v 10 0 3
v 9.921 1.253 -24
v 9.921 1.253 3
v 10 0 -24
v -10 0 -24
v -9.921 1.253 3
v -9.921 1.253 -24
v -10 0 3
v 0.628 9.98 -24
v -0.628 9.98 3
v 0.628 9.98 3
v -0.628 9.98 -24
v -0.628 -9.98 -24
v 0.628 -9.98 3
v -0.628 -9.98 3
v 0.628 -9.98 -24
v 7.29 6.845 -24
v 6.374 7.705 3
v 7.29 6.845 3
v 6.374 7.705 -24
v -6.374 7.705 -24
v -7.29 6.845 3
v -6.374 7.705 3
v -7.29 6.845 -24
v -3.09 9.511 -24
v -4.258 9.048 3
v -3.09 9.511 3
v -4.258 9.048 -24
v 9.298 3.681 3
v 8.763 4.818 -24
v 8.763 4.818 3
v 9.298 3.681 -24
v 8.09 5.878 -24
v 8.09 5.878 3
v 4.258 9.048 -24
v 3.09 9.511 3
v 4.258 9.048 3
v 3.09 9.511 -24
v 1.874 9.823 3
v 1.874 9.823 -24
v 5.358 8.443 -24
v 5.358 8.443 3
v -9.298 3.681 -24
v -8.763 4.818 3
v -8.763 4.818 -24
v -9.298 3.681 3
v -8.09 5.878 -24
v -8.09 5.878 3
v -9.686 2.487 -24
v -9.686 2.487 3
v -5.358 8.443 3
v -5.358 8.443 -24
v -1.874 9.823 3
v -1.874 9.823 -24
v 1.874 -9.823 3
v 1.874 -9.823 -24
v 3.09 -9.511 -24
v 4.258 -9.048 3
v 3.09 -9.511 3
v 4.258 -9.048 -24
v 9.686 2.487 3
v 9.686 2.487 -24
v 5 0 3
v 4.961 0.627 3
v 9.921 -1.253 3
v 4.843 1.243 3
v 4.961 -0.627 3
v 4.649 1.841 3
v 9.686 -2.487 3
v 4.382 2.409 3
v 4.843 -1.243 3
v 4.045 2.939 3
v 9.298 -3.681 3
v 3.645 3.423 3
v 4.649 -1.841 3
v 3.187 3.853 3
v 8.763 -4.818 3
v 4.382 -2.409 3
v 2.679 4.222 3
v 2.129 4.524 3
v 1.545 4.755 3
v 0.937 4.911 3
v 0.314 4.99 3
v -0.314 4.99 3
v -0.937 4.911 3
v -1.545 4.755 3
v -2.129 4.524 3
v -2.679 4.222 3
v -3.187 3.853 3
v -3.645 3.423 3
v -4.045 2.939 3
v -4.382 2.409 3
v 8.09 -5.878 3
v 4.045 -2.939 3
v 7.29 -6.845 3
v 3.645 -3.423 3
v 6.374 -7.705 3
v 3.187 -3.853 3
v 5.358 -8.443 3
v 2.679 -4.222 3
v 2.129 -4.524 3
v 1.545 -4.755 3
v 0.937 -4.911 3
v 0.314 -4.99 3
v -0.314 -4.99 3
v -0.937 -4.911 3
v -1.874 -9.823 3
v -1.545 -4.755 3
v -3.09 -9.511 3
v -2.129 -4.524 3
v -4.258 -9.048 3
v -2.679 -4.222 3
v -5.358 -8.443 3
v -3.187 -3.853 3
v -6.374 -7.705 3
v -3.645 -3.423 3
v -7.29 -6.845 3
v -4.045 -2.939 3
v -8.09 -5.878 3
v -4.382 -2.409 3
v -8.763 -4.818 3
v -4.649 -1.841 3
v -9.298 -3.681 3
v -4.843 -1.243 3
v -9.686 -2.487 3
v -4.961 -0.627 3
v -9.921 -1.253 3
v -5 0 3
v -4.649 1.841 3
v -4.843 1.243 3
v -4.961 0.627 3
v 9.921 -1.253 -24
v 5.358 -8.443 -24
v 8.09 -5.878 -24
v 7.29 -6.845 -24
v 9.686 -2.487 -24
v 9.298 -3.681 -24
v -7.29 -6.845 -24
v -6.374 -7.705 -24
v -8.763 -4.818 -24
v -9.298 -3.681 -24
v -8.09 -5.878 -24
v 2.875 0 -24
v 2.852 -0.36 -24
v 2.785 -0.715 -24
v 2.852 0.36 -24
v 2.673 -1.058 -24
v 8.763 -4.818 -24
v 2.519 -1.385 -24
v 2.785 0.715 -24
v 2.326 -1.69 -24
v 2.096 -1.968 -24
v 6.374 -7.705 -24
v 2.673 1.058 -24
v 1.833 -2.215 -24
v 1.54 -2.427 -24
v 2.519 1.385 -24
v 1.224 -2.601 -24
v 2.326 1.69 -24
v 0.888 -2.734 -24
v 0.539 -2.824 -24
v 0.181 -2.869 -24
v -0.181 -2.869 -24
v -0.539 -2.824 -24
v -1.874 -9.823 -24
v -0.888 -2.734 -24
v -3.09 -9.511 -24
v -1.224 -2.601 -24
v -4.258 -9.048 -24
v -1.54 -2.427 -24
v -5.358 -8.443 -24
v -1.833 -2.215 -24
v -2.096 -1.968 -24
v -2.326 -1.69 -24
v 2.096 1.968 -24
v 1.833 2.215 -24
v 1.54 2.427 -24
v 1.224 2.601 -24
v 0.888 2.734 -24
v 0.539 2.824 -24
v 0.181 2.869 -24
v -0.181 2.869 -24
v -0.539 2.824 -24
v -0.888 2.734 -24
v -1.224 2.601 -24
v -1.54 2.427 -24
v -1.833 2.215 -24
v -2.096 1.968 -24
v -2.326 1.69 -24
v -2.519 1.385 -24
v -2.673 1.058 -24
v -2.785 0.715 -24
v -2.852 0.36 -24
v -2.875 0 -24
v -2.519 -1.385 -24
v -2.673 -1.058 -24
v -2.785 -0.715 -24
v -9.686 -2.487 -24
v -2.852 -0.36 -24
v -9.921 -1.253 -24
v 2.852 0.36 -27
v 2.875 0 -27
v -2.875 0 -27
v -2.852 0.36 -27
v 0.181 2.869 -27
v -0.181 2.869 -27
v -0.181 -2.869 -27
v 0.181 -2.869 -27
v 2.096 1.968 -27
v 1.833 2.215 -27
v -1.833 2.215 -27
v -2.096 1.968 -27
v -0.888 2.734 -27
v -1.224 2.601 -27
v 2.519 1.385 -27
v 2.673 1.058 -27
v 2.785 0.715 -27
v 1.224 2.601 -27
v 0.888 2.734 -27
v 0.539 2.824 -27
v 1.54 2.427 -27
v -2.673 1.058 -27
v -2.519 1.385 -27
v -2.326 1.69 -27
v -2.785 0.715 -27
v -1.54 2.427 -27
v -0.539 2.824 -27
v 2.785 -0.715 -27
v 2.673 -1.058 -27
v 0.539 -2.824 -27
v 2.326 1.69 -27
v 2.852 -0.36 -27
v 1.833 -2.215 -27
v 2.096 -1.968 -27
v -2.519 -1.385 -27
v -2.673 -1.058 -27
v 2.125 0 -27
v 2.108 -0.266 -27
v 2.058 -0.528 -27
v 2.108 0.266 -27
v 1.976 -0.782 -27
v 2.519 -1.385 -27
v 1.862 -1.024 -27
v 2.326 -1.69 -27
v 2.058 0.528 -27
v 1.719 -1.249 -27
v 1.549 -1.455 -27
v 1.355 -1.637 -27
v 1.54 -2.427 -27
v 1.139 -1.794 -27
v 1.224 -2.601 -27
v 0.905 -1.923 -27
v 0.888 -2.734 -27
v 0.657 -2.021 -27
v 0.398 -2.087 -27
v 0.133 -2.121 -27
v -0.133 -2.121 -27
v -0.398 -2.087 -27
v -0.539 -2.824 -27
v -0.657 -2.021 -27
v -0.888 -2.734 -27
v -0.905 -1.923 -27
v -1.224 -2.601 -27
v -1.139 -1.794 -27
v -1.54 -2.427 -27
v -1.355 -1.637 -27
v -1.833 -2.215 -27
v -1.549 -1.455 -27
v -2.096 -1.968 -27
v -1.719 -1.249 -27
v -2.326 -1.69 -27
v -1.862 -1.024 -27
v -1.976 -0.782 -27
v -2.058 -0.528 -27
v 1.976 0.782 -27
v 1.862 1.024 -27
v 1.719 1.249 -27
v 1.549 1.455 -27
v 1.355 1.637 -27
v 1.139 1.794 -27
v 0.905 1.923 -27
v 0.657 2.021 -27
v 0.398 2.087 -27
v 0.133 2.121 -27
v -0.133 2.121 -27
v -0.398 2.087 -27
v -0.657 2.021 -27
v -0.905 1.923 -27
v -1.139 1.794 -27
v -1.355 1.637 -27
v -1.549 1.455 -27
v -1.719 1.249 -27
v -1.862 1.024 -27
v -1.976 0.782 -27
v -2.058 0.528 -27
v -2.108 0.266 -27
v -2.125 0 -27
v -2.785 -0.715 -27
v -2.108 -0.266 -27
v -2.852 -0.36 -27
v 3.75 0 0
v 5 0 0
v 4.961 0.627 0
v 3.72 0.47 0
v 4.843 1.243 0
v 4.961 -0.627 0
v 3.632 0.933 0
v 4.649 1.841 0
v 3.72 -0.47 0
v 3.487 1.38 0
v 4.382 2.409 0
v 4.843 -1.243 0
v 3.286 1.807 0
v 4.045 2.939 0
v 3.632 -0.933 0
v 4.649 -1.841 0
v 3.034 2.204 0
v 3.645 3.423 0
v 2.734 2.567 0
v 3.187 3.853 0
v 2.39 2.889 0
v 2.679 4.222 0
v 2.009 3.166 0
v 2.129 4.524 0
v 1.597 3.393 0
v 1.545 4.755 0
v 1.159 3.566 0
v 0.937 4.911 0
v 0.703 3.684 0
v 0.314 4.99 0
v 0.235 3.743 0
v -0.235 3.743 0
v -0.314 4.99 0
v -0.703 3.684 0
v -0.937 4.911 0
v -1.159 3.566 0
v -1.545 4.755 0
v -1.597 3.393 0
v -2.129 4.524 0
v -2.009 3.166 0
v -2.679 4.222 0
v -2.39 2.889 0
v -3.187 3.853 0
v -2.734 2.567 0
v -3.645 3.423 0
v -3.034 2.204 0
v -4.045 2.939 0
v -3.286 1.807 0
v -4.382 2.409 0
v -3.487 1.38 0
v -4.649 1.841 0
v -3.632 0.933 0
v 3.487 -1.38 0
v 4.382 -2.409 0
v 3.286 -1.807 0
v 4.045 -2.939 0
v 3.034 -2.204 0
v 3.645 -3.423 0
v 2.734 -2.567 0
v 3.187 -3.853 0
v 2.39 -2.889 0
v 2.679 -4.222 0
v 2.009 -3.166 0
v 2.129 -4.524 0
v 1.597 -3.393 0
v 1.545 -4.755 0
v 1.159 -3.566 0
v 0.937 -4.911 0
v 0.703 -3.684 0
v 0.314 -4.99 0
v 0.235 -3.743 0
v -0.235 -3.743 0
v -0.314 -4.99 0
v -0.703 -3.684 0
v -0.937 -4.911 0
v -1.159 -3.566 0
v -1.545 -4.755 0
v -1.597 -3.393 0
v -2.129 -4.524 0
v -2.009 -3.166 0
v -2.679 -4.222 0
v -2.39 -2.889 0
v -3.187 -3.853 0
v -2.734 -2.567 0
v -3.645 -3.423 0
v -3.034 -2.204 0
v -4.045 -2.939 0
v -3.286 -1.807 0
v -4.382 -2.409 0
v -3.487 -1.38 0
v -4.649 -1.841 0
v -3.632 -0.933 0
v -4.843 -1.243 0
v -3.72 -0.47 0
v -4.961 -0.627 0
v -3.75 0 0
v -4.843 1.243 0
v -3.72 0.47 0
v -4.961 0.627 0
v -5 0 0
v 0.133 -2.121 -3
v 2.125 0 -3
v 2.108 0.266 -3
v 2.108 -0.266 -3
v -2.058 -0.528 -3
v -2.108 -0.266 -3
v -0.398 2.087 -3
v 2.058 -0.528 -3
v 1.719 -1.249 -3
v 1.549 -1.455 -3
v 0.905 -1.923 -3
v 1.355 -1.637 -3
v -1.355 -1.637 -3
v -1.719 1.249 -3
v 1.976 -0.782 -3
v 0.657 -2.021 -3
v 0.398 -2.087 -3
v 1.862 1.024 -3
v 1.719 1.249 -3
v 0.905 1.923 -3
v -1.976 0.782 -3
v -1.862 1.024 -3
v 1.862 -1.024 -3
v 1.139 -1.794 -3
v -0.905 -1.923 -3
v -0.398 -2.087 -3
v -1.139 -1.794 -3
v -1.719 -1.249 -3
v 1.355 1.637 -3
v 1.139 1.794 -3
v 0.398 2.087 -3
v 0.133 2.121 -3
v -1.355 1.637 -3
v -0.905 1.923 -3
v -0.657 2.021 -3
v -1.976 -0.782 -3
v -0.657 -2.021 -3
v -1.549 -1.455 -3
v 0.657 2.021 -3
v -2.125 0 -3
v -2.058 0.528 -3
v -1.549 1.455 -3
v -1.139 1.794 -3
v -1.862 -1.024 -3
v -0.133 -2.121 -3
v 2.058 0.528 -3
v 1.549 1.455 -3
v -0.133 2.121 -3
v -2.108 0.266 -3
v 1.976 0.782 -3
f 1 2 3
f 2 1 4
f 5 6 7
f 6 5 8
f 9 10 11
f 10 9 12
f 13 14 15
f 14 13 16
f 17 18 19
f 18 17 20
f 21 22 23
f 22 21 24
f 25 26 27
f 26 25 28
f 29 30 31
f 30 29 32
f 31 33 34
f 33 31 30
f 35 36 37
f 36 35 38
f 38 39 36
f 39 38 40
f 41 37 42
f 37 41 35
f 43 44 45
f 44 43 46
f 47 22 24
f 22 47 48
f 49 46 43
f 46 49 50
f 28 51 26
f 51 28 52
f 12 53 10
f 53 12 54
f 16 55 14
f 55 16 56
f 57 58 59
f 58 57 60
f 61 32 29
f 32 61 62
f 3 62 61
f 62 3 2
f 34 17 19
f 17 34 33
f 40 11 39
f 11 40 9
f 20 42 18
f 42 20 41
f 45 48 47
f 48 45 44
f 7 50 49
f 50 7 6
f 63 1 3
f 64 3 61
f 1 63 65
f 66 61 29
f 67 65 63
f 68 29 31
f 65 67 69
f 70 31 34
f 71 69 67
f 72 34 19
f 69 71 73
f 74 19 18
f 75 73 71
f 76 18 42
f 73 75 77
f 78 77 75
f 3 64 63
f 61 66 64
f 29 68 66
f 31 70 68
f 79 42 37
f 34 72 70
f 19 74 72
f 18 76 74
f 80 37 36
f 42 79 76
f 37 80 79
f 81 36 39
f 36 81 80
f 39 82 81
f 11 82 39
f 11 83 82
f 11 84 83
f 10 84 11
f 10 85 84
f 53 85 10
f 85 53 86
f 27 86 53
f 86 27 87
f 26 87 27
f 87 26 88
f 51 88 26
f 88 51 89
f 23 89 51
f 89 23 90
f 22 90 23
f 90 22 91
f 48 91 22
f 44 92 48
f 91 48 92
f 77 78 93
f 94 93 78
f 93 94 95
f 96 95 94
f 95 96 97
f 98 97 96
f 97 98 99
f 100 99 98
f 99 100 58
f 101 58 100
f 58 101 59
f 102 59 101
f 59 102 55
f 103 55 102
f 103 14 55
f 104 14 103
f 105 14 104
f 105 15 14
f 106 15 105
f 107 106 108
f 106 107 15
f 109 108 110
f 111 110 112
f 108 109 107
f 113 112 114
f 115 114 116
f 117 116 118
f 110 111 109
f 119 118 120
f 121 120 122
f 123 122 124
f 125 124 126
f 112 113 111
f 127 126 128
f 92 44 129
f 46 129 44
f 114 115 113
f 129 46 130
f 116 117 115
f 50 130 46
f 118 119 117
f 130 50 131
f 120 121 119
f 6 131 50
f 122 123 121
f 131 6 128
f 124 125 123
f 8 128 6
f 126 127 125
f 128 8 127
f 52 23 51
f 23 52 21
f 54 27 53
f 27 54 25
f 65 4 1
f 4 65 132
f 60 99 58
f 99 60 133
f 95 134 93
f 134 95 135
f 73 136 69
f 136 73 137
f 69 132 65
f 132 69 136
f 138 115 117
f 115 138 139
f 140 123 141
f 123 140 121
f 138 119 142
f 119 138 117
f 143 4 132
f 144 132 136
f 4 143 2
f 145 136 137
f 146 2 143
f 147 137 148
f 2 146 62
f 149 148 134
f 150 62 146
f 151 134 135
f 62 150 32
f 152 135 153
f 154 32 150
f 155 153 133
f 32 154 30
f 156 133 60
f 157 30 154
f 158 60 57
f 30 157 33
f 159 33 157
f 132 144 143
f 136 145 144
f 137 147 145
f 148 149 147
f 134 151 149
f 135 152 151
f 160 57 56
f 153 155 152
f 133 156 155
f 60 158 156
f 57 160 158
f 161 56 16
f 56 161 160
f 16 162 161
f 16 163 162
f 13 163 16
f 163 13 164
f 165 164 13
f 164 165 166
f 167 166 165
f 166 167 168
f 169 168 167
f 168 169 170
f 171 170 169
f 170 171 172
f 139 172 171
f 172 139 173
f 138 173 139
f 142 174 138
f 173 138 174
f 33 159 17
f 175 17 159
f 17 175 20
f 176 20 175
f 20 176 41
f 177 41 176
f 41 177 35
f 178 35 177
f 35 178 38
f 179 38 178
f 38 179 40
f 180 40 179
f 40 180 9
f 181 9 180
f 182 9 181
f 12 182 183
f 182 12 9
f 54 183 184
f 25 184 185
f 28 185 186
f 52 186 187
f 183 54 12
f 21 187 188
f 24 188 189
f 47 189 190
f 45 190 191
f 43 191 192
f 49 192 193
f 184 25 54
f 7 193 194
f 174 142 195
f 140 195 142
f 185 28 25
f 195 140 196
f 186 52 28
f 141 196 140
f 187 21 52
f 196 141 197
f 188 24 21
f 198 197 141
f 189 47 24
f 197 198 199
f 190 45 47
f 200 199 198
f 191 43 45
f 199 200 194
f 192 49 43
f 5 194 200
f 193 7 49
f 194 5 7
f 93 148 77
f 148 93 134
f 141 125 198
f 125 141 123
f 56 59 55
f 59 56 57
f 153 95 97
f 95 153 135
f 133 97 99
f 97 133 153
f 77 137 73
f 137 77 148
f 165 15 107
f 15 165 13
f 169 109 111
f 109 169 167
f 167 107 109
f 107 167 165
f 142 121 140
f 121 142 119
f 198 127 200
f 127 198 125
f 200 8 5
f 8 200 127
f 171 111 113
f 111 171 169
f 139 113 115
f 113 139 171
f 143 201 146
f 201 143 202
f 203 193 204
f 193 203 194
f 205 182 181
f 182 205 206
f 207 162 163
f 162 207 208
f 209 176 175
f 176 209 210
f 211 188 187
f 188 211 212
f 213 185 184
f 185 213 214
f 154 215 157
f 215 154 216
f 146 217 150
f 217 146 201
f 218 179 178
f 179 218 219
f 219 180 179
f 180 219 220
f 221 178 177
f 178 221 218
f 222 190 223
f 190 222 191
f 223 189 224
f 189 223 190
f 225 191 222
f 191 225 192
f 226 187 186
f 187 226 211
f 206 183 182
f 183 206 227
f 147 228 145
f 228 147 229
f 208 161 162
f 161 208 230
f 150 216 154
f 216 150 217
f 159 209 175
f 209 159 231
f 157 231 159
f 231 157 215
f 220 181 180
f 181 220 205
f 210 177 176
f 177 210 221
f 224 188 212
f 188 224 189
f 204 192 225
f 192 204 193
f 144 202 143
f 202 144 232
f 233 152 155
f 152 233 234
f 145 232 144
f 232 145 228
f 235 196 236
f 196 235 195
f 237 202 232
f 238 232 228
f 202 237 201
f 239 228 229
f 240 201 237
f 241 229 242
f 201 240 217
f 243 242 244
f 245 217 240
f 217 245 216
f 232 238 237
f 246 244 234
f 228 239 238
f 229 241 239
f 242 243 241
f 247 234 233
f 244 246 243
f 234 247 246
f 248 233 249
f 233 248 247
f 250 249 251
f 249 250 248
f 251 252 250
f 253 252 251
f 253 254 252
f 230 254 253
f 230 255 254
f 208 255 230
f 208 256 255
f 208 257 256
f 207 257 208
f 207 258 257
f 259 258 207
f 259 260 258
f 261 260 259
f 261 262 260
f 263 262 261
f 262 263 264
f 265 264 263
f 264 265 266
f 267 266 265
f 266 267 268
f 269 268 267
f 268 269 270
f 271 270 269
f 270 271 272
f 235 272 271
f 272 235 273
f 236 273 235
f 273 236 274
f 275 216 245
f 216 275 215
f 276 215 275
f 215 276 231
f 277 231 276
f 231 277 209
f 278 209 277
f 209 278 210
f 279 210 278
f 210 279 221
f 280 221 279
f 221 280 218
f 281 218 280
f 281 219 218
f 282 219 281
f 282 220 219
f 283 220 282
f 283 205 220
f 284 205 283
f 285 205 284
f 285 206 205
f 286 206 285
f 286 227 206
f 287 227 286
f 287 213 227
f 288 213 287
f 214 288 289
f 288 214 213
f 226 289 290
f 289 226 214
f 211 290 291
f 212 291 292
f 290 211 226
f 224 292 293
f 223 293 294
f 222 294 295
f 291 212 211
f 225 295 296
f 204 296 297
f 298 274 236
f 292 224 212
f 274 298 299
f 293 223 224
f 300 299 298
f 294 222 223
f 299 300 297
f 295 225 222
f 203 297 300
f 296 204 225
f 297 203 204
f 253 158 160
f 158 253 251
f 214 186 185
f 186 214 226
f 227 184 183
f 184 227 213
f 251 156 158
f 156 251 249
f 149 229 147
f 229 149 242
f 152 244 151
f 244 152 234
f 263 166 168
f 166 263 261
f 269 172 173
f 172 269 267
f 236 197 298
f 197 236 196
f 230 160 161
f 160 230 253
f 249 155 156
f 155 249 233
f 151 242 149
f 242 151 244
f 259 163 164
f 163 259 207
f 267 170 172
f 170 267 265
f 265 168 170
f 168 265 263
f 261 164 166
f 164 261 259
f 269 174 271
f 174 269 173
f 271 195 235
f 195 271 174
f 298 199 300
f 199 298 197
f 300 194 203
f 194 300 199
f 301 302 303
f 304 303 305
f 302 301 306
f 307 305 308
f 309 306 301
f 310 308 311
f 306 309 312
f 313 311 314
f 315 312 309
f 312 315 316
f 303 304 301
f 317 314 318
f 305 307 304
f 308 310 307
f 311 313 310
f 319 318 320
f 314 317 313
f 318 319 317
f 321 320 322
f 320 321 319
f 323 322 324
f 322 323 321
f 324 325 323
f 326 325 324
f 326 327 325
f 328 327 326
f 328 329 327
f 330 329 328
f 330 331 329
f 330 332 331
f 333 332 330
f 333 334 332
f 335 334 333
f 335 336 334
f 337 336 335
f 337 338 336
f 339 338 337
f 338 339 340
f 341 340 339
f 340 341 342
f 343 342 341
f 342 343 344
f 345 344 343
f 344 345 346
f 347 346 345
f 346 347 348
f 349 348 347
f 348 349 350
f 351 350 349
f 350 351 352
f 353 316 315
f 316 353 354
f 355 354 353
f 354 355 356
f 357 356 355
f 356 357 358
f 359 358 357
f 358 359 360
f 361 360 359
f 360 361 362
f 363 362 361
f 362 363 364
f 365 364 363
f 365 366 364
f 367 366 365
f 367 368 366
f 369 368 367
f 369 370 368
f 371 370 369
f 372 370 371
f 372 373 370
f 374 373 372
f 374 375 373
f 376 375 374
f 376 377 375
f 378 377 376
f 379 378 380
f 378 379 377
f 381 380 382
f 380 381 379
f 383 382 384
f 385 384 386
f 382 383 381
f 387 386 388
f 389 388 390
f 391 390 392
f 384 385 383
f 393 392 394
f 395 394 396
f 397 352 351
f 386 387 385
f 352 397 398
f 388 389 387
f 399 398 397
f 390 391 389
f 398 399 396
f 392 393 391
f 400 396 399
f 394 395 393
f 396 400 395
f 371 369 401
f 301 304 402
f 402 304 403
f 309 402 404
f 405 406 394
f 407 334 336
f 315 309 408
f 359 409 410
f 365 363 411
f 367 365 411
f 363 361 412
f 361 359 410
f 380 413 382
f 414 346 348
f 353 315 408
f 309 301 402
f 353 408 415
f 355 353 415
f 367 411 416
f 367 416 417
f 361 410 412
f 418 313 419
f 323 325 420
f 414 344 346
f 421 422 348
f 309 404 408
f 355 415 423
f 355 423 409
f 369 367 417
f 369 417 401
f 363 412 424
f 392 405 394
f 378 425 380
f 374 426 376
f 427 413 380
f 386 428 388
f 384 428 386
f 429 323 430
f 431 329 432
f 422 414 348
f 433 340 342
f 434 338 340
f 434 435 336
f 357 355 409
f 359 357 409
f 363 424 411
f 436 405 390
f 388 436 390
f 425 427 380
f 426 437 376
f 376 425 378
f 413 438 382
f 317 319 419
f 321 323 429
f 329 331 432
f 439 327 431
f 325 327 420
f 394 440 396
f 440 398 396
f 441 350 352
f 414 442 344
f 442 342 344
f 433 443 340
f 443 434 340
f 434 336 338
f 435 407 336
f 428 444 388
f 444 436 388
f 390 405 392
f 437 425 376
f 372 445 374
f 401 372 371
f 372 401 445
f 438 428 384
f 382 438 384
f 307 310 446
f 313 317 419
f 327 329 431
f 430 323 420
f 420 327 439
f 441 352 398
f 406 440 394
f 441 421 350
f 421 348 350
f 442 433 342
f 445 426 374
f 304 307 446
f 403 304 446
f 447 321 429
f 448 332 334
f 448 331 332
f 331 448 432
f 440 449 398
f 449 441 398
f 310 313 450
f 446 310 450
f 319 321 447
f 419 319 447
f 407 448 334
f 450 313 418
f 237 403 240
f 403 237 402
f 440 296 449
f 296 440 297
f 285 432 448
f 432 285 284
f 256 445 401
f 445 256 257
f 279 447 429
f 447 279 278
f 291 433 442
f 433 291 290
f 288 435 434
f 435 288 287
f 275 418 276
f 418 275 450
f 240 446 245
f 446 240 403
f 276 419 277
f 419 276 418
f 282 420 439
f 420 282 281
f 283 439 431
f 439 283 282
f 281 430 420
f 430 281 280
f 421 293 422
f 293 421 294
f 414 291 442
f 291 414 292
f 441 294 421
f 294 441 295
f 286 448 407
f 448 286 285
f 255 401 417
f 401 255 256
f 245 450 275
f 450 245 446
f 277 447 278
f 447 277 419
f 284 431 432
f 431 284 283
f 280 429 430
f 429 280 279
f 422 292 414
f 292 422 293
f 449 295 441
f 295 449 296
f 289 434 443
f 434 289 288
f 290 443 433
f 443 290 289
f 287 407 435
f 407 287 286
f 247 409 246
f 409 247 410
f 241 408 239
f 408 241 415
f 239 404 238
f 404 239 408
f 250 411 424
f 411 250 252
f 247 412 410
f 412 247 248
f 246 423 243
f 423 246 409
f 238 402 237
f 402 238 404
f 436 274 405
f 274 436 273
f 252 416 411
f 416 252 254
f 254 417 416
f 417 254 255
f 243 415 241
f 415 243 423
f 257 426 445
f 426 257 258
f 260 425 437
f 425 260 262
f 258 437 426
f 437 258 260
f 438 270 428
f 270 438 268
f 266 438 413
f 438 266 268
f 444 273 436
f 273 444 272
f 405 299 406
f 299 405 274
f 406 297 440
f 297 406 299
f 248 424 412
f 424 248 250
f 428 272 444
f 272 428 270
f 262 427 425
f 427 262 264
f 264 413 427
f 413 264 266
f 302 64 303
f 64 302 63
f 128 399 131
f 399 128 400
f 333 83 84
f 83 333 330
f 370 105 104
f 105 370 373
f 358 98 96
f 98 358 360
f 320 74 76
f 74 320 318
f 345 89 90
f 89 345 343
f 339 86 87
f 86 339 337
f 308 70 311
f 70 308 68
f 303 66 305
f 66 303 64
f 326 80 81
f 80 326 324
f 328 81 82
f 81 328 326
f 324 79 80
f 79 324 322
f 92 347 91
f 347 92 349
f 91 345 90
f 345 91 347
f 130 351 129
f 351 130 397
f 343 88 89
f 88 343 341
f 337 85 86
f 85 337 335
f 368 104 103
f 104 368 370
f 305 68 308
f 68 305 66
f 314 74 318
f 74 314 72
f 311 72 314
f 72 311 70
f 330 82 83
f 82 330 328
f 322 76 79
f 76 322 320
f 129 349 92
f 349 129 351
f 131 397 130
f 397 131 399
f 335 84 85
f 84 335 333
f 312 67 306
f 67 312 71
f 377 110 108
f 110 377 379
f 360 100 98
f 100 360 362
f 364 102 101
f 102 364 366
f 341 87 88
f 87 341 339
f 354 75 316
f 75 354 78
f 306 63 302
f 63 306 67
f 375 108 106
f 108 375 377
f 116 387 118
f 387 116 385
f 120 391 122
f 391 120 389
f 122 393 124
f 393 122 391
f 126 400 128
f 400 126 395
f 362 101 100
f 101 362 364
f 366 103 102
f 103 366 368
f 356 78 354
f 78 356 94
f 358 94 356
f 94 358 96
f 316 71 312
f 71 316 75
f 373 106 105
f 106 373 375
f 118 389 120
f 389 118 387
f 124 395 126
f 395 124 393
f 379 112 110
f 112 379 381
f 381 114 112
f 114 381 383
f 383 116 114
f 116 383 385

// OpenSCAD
$fn = 50;


difference() {
	union() {
		translate(v = [0, 0, -24.0000000000]) {
			cylinder(h = 27, r = 10.0000000000);
		}
		#translate(v = [0, 0, -27.0000000000]) {
			cylinder(h = 27, r = 2.8750000000);
		}
	}
	union() {
		translate(v = [0, 0, 0]) {
			rotate(a = [0, 0, 0]) {
				difference() {
					union() {
						translate(v = [0, 0, -27.0000000000]) {
							cylinder(h = 27, r = 2.0000000000);
						}
						translate(v = [0, 0, -3]) {
							cylinder(h = 3, r1 = 2.1250000000, r2 = 3.7500000000);
						}
						translate(v = [0, 0, -27.0000000000]) {
							cylinder(h = 27, r = 2.1250000000);
						}
						translate(v = [0, 0, -27.0000000000]) {
							cylinder(h = 27, r = 2.0000000000);
						}
					}
					union();
				}
			}
		}
		#cylinder(h = 3, r = 5.0000000000);
	}
}
